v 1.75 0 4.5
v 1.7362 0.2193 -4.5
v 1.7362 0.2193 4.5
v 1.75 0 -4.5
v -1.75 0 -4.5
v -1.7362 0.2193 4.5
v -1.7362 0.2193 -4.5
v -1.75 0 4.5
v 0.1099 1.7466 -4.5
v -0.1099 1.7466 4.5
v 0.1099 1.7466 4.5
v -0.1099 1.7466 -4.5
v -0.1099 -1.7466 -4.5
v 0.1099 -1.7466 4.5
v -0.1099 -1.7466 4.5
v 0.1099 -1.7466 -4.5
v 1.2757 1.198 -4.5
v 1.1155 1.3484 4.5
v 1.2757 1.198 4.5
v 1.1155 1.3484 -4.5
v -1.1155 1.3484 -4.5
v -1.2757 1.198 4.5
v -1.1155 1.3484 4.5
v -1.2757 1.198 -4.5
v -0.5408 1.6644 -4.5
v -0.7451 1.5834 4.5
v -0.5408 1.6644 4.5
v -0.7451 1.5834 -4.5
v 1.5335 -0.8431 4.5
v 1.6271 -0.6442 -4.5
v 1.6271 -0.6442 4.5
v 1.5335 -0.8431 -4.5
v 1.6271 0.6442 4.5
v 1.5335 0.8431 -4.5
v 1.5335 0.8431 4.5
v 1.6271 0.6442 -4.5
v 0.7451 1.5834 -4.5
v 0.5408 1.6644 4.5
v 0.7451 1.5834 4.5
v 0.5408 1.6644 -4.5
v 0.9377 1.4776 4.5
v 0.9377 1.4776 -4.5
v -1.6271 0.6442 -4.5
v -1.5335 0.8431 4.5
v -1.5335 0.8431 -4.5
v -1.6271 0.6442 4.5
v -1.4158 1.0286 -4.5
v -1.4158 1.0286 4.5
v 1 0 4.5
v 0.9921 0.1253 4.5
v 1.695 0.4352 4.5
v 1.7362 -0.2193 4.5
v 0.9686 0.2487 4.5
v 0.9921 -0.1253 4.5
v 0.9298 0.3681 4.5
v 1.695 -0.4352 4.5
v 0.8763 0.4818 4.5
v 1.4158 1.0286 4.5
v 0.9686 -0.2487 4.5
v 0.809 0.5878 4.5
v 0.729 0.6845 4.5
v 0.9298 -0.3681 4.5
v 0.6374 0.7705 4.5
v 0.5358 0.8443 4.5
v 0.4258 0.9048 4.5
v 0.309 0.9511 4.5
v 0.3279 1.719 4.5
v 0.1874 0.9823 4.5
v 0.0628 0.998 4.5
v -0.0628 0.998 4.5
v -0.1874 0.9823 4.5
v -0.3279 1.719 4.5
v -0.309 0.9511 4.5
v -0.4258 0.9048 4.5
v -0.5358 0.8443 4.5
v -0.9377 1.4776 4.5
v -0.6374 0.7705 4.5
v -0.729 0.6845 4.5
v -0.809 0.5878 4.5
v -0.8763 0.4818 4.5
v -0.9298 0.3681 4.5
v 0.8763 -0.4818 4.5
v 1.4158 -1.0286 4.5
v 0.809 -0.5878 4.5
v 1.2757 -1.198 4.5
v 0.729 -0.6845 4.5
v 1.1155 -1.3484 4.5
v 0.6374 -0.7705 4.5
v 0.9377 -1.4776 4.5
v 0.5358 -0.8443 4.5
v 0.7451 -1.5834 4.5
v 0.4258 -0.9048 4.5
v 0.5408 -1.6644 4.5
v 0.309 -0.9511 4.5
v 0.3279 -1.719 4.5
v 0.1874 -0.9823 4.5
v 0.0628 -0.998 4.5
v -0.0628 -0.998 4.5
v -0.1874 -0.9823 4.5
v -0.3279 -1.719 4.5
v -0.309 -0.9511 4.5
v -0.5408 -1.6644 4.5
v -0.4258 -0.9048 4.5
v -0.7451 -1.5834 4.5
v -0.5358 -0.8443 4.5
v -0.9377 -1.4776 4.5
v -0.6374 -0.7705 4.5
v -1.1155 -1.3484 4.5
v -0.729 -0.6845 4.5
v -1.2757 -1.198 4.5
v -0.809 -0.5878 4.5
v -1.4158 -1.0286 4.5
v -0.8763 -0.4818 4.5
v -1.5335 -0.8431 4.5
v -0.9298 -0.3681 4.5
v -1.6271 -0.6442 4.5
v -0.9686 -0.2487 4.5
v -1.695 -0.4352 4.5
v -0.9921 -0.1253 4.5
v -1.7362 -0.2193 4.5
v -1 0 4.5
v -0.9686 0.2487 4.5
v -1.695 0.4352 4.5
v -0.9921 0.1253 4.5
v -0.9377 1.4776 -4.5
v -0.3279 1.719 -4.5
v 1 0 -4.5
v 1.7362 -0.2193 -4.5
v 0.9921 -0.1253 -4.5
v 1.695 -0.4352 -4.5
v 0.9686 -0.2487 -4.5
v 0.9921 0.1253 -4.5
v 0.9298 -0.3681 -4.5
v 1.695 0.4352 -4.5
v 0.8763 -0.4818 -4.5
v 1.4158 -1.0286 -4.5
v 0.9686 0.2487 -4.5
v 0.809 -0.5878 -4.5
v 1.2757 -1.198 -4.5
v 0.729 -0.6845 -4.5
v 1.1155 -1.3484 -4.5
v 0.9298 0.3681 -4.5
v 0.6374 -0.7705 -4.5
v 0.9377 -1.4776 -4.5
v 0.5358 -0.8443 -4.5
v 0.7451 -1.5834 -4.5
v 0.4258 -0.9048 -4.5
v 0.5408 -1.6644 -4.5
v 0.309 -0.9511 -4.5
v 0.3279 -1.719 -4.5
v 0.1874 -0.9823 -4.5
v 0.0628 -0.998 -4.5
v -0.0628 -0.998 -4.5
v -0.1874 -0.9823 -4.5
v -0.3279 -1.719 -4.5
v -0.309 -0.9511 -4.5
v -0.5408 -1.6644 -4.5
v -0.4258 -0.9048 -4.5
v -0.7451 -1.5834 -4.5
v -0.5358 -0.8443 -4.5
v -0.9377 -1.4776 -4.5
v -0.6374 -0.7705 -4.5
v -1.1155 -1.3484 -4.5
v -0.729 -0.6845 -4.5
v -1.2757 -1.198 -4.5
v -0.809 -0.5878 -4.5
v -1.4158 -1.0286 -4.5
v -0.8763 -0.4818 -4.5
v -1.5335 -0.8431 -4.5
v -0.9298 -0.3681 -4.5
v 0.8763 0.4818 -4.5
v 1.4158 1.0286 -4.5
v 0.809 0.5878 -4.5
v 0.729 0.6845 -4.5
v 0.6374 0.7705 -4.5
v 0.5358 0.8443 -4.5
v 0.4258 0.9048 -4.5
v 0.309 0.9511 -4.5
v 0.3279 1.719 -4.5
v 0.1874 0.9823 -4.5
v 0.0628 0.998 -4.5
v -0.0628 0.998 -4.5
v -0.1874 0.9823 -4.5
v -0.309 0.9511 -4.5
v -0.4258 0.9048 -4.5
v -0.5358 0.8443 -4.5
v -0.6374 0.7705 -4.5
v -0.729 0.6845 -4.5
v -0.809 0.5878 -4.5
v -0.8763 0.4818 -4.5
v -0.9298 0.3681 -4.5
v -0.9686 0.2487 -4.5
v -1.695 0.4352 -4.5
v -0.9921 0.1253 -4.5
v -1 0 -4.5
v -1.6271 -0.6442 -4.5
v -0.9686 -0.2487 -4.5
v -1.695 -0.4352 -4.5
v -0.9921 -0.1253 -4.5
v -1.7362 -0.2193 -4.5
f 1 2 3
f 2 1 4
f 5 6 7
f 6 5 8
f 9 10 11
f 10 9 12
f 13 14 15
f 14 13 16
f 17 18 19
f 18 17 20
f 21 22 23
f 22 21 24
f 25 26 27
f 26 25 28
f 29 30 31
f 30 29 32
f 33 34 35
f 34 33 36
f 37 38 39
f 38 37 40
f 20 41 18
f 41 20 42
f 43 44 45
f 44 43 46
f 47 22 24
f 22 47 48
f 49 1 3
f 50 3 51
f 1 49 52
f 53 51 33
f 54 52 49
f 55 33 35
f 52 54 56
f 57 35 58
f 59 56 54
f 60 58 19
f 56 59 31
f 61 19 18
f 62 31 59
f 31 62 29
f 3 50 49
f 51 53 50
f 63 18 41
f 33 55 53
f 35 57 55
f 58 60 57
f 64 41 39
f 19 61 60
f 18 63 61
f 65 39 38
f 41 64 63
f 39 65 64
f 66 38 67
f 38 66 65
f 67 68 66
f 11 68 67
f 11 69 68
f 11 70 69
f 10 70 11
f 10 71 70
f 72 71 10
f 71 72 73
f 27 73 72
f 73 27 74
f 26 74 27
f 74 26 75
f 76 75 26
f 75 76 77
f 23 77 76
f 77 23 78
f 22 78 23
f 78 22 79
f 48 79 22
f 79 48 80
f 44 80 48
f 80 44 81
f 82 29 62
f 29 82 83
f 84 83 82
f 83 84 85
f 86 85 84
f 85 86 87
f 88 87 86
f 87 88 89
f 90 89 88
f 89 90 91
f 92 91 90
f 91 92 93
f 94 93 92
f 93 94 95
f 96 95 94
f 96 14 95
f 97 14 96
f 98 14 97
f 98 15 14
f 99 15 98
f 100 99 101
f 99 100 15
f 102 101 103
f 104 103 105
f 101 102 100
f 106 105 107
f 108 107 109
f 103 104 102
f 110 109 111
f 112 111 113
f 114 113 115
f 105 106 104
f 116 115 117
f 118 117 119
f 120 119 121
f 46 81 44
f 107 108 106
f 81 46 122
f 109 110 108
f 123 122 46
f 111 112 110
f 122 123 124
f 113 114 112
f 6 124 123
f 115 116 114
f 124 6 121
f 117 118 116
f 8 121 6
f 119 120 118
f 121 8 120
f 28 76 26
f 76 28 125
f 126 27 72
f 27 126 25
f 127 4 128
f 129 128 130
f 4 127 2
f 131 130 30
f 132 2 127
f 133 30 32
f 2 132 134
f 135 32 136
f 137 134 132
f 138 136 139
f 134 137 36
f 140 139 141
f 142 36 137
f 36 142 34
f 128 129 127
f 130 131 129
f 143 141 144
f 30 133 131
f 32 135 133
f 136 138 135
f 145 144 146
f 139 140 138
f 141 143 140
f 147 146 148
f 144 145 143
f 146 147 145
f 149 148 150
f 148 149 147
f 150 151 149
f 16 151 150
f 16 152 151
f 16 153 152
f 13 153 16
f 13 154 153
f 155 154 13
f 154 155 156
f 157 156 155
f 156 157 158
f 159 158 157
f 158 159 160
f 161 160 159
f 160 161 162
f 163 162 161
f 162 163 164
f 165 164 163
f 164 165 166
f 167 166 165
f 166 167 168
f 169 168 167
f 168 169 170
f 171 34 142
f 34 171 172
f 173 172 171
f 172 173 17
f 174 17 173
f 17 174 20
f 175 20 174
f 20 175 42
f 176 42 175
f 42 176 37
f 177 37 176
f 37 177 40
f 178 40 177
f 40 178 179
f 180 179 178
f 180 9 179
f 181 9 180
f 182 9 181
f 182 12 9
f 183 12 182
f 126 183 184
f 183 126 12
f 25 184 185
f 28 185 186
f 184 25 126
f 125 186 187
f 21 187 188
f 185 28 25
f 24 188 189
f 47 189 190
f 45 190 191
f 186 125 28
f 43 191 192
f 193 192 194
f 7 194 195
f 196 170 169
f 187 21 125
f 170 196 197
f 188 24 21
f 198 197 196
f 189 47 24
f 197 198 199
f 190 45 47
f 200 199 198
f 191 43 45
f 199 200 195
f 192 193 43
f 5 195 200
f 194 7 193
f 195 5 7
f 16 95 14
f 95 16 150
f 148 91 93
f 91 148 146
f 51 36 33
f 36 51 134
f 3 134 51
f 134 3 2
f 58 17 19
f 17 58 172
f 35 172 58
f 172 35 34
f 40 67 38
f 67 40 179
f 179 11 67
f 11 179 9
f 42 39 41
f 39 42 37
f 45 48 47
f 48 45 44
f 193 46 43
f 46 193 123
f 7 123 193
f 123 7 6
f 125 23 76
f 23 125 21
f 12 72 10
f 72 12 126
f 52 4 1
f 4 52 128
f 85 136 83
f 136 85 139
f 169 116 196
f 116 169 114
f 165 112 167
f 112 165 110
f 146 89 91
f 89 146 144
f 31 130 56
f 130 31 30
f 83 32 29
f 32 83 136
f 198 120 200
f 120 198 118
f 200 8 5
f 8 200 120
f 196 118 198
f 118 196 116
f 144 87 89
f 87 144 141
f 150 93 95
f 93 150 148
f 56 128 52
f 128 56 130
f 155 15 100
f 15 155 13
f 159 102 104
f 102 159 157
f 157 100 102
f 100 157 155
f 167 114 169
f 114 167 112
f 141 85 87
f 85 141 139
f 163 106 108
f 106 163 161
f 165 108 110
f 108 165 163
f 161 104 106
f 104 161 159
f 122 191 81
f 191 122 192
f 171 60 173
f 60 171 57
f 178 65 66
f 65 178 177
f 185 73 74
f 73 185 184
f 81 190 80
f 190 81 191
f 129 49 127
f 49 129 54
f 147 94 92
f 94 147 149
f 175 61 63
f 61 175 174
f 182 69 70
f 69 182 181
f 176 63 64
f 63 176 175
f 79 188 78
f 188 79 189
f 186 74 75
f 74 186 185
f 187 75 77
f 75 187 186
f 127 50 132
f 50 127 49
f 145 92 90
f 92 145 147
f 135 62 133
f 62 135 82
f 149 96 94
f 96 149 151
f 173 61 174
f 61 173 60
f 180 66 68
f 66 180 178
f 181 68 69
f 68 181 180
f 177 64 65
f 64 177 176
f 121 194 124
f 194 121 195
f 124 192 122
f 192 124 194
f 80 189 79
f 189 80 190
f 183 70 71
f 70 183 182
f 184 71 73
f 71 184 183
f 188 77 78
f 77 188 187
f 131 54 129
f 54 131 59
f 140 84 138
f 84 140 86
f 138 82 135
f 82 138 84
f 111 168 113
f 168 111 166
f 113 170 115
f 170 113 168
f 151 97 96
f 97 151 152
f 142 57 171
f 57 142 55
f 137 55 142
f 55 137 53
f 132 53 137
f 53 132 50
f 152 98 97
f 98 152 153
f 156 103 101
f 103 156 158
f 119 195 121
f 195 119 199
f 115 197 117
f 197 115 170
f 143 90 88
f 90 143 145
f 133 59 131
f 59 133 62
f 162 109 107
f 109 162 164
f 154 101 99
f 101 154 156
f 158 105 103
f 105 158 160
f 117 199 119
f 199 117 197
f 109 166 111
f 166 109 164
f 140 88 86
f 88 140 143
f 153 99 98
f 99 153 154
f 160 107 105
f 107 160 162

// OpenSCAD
$fn = 50;


difference() {
	union() {
		translate(v = [0, 0, -4.5000000000]) {
			cylinder(h = 9, r = 1.7500000000);
		}
	}
	union() {
		translate(v = [0, 0, -100.0000000000]) {
			cylinder(h = 200, r = 1.0000000000);
		}
	}
}
